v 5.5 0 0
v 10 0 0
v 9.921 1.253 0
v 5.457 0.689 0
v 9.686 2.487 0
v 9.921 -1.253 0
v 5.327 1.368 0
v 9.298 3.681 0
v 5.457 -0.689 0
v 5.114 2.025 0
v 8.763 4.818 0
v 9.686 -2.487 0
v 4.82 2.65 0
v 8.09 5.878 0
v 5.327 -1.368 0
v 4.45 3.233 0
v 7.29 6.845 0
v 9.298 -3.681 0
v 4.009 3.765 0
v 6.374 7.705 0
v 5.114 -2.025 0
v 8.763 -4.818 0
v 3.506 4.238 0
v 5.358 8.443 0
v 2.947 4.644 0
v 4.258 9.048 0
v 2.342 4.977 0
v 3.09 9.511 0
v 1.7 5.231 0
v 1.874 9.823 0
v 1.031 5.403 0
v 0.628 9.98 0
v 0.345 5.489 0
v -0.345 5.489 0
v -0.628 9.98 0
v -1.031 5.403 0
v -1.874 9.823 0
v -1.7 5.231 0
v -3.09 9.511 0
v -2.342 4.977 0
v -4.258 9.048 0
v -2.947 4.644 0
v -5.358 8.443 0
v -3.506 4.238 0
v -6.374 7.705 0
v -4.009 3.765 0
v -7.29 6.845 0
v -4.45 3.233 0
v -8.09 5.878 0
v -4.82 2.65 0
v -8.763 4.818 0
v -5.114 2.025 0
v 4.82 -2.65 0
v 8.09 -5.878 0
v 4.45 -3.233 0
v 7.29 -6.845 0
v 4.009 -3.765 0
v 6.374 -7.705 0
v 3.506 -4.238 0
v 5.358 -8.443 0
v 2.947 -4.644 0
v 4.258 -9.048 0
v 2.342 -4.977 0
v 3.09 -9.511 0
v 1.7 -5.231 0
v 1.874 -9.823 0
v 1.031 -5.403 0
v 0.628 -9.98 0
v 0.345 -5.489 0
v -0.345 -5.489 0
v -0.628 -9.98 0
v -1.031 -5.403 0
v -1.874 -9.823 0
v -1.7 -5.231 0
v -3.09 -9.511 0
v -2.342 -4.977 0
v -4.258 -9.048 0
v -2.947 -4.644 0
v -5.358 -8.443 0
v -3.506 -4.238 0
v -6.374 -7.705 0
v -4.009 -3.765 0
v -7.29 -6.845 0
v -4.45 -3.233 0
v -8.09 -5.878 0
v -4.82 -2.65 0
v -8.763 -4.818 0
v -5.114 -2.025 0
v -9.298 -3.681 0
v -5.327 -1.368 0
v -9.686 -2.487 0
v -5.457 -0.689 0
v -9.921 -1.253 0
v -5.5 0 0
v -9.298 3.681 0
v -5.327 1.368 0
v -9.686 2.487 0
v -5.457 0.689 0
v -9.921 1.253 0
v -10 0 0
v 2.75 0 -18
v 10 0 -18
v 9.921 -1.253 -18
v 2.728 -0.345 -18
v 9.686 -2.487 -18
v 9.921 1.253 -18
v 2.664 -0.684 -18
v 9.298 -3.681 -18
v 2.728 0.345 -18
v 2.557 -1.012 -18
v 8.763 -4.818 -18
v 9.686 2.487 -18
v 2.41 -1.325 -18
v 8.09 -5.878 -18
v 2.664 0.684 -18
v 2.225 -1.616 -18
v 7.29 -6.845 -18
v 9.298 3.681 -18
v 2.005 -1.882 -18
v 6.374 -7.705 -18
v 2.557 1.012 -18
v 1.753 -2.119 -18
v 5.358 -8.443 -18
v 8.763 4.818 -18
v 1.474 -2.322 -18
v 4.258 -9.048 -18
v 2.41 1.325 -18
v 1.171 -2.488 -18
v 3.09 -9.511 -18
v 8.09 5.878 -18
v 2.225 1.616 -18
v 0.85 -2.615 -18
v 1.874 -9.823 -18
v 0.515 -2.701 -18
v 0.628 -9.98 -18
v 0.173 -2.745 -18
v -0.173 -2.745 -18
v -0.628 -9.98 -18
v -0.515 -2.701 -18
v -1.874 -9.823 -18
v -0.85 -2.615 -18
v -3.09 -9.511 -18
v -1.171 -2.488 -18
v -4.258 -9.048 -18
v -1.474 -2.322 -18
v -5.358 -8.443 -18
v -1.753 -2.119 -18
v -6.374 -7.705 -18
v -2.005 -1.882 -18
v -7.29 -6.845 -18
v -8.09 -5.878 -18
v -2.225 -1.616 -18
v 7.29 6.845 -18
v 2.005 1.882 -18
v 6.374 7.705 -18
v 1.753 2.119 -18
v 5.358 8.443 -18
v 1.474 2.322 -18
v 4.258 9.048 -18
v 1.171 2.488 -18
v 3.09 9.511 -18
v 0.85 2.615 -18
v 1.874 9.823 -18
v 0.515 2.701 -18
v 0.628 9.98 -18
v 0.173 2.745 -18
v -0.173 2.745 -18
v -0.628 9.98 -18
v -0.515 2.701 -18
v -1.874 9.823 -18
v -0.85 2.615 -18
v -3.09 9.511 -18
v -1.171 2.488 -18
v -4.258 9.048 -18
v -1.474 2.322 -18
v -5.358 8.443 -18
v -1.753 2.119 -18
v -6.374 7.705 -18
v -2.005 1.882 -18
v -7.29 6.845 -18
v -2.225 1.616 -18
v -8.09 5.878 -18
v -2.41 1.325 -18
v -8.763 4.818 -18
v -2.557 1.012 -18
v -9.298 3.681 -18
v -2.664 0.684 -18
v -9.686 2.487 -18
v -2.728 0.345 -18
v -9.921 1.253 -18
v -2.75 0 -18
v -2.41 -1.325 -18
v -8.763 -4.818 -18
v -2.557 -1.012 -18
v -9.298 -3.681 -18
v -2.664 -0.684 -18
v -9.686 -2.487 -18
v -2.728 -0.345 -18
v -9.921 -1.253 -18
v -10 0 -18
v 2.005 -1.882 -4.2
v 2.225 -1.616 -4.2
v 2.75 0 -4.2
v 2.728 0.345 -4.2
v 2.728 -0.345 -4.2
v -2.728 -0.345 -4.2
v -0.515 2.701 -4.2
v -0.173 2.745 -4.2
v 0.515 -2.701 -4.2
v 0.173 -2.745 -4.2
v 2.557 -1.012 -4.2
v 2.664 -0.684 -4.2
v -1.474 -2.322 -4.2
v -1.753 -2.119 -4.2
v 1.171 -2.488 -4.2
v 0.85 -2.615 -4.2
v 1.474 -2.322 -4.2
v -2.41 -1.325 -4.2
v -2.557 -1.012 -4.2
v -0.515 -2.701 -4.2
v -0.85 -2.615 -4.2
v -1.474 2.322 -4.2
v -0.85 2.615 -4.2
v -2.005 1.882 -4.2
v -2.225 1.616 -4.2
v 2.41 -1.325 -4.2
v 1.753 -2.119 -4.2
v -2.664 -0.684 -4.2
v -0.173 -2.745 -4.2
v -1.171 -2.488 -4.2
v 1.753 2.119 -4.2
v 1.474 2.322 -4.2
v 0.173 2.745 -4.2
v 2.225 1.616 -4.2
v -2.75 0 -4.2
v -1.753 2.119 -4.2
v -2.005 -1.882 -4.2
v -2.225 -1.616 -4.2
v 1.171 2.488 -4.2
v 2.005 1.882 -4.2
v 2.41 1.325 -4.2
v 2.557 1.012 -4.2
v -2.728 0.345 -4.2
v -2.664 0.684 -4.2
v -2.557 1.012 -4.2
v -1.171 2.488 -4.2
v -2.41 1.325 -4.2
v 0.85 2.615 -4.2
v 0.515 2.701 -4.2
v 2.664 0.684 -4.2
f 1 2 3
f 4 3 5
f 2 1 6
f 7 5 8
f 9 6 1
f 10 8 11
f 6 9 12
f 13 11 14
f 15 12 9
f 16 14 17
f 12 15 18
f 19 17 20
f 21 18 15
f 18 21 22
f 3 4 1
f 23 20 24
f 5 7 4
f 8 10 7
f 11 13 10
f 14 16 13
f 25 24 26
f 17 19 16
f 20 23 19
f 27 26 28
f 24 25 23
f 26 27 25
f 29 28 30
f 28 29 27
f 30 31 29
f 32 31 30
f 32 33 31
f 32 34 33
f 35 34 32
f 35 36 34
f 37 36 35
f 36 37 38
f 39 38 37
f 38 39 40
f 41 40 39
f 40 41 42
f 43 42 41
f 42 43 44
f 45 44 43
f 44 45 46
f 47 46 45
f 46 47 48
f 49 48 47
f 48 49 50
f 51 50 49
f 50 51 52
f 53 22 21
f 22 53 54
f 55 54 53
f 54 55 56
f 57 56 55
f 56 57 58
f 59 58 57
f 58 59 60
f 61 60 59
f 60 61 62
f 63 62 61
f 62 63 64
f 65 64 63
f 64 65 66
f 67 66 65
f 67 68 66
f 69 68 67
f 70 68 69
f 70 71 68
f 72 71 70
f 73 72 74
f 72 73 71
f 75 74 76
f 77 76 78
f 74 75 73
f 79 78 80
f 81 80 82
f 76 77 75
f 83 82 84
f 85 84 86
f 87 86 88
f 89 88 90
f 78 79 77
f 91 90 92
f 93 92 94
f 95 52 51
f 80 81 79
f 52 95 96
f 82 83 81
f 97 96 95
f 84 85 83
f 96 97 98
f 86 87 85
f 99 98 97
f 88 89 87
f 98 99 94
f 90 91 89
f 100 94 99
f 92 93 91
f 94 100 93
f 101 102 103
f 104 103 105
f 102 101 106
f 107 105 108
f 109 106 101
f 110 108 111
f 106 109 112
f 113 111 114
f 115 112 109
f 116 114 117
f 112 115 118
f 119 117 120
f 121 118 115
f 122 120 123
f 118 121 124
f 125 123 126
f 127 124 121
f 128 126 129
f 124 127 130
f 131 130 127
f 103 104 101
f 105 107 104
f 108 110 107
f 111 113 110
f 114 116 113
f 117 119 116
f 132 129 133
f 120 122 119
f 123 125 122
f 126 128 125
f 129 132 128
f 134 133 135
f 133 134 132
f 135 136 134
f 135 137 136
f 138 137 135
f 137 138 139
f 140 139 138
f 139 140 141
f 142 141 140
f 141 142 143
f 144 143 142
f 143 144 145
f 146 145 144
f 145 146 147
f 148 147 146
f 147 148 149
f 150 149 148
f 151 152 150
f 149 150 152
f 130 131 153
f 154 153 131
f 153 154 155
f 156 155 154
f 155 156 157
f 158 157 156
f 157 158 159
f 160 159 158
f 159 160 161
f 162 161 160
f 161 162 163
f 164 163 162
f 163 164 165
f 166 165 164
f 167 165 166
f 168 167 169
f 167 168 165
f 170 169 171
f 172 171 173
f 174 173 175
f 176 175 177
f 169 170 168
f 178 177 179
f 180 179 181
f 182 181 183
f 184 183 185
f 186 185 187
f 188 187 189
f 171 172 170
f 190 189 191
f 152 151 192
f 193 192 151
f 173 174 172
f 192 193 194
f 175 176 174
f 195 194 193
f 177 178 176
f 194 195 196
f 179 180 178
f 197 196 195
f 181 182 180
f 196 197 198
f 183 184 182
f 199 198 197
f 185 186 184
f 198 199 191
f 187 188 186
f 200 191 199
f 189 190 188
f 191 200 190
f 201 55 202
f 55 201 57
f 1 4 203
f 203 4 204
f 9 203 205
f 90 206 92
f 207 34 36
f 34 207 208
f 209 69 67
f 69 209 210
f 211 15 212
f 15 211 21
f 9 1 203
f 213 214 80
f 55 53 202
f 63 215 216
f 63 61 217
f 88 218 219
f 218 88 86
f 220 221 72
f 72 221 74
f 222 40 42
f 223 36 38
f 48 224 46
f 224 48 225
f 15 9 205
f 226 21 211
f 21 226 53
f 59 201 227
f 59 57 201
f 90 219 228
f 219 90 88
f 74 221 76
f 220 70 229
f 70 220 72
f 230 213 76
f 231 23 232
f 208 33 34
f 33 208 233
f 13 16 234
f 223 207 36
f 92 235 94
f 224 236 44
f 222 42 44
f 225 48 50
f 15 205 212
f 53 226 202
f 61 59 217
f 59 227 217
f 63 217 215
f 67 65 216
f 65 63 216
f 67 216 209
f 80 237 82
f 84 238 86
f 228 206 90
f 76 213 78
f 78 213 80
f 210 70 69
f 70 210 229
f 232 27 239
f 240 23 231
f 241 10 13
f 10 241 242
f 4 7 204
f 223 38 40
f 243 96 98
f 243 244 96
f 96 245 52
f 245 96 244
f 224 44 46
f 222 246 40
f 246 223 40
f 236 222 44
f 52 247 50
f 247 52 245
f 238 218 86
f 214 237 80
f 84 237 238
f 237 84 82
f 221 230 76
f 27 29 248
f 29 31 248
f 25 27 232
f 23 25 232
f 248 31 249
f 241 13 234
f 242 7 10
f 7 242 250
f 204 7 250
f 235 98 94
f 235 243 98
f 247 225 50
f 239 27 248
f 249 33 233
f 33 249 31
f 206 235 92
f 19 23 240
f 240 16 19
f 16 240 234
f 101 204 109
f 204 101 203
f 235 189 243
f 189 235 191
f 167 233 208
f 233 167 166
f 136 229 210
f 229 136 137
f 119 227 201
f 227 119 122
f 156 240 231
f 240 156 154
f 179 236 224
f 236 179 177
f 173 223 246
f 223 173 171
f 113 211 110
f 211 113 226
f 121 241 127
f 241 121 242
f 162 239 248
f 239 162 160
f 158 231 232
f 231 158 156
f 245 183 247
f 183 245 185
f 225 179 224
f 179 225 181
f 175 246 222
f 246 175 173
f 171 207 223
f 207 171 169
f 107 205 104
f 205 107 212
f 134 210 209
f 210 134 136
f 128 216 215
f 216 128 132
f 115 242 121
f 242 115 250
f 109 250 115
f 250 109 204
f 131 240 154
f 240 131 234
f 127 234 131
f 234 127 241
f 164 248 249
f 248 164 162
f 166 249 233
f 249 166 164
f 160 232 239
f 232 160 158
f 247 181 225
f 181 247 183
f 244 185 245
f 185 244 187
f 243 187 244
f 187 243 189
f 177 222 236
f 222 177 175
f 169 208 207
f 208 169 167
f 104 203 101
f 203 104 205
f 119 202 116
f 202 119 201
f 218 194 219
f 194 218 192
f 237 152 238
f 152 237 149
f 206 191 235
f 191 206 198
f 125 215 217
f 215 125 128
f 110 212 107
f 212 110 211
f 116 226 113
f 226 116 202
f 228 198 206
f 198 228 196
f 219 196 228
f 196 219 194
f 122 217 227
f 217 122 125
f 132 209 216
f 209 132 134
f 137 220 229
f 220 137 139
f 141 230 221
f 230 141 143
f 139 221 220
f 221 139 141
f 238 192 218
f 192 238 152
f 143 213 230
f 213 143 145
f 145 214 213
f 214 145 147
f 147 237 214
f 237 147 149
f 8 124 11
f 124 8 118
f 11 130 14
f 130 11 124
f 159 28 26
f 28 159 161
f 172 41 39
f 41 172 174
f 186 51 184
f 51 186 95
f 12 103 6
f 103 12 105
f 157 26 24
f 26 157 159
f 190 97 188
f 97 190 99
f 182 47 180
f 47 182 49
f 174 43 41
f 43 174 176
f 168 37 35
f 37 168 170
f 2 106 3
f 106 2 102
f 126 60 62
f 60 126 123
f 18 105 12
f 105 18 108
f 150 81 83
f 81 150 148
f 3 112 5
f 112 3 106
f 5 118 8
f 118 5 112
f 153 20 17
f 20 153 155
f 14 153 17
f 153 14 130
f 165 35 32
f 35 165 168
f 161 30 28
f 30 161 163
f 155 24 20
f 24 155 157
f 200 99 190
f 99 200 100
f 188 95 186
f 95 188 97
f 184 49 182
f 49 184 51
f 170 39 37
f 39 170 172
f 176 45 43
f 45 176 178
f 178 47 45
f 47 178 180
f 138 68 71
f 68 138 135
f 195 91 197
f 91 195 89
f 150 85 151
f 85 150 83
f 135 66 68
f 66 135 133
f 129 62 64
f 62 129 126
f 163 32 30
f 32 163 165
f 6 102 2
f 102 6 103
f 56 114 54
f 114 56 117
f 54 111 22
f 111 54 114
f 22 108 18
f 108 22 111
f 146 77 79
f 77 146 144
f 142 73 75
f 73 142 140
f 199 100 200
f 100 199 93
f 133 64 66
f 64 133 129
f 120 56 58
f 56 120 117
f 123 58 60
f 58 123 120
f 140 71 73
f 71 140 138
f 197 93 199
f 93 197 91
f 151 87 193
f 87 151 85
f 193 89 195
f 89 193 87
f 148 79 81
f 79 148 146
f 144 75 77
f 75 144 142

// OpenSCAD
$fn = 50;


difference() {
	union() {
		translate(v = [0, 0, -18.0000000000]) {
			cylinder(h = 18, r = 10.0000000000);
		}
		cylinder(h = 0, r = 19.0000000000);
	}
	union() {
		translate(v = [0, 0, 0]) {
			rotate(a = [0, 0, 0]) {
				difference() {
					union() {
						#translate(v = [0, 0, -18.0000000000]) {
							cylinder(h = 18, r = 2.2500000000);
						}
						#translate(v = [0, 0, -4.2000000000]) {
							cylinder(h = 4.2000000000, r = 10.0000000000, r1 = 2.7500000000, r2 = 5.5000000000);
						}
						#translate(v = [0, 0, -18.0000000000]) {
							cylinder(h = 18, r = 2.7500000000);
						}
						#translate(v = [0, 0, -18.0000000000]) {
							cylinder(h = 18, r = 2.2500000000);
						}
					}
					union();
				}
			}
		}
	}
}
